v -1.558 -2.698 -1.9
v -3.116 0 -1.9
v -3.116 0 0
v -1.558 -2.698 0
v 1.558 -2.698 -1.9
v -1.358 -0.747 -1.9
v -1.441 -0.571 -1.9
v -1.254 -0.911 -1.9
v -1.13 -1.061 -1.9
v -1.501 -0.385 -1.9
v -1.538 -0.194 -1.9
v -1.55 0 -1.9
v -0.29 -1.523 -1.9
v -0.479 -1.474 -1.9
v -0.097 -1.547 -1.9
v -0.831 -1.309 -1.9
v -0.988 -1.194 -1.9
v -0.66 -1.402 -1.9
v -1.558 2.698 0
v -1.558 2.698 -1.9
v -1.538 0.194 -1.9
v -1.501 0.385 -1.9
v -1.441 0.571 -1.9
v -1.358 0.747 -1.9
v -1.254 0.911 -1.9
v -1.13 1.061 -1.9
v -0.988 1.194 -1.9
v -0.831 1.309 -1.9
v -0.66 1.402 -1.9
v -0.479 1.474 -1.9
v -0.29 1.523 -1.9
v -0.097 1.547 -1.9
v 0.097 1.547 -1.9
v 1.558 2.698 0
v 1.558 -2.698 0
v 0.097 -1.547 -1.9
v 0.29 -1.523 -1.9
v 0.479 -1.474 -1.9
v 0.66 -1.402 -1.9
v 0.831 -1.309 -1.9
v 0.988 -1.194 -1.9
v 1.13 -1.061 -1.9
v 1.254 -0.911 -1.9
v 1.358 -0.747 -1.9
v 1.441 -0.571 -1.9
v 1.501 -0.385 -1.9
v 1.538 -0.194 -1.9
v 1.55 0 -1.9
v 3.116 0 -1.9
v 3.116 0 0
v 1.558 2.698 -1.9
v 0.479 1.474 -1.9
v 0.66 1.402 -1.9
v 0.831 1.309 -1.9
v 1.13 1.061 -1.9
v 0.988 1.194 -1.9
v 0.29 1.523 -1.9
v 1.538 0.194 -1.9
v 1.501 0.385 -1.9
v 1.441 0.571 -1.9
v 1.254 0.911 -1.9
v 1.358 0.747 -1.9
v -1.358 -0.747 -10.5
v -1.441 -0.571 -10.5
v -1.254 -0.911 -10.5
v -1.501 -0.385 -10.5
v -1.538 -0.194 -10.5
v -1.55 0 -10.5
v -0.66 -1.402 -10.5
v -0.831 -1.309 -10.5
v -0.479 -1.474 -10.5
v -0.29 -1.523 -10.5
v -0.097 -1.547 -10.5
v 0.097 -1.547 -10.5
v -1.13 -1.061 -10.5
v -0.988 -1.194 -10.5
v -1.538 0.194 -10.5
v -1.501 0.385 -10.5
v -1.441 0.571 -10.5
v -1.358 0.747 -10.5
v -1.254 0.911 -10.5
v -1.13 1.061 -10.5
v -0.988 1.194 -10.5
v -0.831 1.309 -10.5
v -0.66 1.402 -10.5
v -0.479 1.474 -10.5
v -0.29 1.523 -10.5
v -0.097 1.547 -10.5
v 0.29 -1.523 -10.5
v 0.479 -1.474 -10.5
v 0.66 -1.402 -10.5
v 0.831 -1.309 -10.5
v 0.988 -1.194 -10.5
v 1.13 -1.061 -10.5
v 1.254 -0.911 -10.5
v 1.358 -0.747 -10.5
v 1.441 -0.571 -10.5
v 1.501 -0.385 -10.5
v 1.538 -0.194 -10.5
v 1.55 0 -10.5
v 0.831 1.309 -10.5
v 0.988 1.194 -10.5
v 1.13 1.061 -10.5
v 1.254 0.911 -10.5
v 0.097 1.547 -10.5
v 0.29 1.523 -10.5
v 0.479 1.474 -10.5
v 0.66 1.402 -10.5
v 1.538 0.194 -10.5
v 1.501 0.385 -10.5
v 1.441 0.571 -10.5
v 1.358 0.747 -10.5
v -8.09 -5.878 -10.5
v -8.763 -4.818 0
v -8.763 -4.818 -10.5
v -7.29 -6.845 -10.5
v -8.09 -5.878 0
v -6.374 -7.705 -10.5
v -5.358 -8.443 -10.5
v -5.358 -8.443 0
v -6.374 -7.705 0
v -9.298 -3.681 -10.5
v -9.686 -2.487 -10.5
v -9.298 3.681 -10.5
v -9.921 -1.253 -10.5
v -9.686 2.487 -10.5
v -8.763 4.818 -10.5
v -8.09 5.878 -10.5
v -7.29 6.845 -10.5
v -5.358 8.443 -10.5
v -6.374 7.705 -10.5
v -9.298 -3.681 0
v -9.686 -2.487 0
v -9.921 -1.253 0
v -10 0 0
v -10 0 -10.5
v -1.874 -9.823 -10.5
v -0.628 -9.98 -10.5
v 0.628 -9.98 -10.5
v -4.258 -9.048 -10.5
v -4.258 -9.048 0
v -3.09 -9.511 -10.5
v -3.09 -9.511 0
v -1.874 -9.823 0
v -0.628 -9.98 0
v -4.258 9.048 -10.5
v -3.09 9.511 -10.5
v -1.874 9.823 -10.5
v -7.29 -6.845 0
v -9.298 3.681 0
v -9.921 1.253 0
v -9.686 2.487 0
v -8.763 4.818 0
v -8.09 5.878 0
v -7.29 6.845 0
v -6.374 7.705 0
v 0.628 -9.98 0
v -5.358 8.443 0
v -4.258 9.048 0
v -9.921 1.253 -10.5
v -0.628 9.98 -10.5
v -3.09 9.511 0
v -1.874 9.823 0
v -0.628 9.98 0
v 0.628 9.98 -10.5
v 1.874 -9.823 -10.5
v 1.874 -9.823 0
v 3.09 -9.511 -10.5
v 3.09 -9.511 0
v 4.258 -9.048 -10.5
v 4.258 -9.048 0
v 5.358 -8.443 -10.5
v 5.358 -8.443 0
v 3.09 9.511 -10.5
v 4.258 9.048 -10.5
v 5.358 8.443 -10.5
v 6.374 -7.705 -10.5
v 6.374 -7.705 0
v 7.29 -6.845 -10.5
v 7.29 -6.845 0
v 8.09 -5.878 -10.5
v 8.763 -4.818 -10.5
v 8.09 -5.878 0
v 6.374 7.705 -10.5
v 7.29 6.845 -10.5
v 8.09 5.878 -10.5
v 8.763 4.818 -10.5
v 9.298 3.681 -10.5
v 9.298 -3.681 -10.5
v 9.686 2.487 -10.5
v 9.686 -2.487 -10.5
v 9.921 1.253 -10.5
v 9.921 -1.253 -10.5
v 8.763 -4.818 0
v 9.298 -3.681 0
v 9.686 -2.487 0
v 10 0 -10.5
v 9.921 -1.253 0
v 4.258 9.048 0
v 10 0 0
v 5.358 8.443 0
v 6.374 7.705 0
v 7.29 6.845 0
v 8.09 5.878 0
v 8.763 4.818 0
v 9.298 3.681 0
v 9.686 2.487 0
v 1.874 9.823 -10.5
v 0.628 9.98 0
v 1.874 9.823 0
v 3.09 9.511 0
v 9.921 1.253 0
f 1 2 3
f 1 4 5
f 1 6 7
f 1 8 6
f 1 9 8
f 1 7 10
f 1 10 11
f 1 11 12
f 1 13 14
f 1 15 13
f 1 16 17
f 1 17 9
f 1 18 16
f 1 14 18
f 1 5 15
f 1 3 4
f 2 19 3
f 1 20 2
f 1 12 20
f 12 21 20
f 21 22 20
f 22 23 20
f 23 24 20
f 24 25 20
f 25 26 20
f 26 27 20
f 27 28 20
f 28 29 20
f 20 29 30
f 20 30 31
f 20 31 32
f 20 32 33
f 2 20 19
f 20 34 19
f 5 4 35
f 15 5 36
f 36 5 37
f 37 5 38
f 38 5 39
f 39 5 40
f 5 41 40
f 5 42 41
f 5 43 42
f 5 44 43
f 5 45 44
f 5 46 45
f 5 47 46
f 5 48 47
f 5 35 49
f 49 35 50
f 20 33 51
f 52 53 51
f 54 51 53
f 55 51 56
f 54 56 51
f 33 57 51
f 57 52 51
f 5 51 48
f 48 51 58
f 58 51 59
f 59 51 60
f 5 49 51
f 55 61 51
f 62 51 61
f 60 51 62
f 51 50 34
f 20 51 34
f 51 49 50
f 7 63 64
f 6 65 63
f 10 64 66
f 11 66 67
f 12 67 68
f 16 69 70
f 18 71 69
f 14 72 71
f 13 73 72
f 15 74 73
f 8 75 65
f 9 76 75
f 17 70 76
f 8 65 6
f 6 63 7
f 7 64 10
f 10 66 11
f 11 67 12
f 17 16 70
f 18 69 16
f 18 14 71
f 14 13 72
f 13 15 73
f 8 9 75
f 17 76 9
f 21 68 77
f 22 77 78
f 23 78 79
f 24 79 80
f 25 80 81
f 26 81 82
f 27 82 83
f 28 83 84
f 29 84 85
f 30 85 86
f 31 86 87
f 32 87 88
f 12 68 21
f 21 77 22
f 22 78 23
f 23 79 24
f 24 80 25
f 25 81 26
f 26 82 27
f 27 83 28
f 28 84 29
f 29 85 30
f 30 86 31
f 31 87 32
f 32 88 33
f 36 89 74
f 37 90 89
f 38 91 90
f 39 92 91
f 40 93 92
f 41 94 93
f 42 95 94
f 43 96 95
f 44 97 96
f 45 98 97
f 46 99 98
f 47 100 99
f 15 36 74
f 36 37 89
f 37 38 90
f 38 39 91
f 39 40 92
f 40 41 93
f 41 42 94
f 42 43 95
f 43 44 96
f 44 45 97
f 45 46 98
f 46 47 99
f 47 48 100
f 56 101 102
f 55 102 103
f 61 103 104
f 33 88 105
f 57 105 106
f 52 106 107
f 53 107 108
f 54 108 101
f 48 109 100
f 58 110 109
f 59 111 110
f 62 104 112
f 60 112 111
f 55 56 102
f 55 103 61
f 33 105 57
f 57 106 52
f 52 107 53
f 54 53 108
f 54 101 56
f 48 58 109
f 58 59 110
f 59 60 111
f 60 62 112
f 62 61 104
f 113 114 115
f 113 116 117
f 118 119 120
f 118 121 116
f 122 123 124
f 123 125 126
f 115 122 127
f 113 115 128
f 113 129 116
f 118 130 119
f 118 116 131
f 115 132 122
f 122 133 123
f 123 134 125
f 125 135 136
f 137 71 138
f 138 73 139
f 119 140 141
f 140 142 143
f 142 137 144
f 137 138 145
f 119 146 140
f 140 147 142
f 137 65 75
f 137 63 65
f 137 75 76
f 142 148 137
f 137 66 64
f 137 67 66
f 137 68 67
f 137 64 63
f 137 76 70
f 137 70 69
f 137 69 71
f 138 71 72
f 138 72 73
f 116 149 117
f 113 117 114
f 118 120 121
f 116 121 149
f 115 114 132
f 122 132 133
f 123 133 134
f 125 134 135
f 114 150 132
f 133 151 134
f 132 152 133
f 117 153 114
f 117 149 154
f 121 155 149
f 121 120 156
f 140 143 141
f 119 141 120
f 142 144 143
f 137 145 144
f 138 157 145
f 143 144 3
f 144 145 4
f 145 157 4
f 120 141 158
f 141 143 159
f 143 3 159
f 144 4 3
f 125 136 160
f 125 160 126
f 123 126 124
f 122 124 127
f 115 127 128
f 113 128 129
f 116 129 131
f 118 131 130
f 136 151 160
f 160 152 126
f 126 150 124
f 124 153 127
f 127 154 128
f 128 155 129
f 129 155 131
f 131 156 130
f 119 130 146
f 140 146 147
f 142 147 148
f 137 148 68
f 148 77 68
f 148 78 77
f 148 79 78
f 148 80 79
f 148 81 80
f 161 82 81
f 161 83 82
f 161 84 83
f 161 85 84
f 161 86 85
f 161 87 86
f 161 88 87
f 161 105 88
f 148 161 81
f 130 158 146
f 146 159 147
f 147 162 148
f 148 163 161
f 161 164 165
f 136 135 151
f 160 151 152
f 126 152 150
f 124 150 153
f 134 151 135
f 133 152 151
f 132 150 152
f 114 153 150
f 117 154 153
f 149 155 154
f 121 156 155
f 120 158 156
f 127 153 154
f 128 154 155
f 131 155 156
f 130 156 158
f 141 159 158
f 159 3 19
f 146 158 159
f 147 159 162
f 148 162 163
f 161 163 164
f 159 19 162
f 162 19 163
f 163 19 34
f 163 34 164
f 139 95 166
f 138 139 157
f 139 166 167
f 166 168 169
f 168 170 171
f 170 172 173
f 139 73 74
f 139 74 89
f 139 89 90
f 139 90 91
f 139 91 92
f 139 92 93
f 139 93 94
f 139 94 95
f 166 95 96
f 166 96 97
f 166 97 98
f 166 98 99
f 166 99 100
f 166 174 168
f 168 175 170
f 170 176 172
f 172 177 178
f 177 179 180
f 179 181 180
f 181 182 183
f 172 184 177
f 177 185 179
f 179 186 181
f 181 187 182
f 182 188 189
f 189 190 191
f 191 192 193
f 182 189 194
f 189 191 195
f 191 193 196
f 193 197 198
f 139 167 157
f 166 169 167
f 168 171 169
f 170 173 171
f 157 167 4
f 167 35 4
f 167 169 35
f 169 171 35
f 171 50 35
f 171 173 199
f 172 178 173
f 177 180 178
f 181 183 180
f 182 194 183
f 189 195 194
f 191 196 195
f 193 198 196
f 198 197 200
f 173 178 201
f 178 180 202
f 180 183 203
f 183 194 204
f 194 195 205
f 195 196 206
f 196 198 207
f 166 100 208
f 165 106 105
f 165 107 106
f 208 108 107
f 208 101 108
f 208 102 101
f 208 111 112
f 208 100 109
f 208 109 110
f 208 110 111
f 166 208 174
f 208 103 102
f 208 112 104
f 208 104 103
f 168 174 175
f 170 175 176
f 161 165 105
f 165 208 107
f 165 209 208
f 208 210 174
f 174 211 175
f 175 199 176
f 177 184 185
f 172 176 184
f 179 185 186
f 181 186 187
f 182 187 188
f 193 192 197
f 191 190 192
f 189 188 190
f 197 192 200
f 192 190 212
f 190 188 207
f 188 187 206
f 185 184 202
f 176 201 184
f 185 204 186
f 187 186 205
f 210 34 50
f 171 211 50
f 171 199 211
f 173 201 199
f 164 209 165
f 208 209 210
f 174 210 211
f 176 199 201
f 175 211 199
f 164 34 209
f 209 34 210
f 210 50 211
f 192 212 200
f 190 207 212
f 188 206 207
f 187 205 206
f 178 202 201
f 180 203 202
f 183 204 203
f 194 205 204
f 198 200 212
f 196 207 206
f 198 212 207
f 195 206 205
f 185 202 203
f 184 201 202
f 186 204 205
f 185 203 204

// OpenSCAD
$fn = 50;

difference() {
	union() {
		translate(v = [0, 0, -10.5]) {
			cylinder(h = 10.5, r = 10.0);
		}
	}
	union() {
		translate(v = [0, 0, 0]) {
			rotate(a = [0, 0, 0]) {
				difference() {
					union() {
						translate(v = [0, 0, -1.9]) {
							linear_extrude(height = 1.9) {
								polygon(points = [[3.1158, 0.0], [1.5579000000000005, 2.698361953111554], [-1.5578999999999994, 2.6983619531115544], [-3.1158, 3.815754496783323e-16], [-1.5579000000000014, -2.6983619531115535], [1.557899999999998, -2.6983619531115552]]);
							}
						}
					}
					union();
				}
			}
		}
		#translate(v = [0, 0, -100.0]) {
			cylinder(h = 200, r = 1.55);
		}
	}
}
